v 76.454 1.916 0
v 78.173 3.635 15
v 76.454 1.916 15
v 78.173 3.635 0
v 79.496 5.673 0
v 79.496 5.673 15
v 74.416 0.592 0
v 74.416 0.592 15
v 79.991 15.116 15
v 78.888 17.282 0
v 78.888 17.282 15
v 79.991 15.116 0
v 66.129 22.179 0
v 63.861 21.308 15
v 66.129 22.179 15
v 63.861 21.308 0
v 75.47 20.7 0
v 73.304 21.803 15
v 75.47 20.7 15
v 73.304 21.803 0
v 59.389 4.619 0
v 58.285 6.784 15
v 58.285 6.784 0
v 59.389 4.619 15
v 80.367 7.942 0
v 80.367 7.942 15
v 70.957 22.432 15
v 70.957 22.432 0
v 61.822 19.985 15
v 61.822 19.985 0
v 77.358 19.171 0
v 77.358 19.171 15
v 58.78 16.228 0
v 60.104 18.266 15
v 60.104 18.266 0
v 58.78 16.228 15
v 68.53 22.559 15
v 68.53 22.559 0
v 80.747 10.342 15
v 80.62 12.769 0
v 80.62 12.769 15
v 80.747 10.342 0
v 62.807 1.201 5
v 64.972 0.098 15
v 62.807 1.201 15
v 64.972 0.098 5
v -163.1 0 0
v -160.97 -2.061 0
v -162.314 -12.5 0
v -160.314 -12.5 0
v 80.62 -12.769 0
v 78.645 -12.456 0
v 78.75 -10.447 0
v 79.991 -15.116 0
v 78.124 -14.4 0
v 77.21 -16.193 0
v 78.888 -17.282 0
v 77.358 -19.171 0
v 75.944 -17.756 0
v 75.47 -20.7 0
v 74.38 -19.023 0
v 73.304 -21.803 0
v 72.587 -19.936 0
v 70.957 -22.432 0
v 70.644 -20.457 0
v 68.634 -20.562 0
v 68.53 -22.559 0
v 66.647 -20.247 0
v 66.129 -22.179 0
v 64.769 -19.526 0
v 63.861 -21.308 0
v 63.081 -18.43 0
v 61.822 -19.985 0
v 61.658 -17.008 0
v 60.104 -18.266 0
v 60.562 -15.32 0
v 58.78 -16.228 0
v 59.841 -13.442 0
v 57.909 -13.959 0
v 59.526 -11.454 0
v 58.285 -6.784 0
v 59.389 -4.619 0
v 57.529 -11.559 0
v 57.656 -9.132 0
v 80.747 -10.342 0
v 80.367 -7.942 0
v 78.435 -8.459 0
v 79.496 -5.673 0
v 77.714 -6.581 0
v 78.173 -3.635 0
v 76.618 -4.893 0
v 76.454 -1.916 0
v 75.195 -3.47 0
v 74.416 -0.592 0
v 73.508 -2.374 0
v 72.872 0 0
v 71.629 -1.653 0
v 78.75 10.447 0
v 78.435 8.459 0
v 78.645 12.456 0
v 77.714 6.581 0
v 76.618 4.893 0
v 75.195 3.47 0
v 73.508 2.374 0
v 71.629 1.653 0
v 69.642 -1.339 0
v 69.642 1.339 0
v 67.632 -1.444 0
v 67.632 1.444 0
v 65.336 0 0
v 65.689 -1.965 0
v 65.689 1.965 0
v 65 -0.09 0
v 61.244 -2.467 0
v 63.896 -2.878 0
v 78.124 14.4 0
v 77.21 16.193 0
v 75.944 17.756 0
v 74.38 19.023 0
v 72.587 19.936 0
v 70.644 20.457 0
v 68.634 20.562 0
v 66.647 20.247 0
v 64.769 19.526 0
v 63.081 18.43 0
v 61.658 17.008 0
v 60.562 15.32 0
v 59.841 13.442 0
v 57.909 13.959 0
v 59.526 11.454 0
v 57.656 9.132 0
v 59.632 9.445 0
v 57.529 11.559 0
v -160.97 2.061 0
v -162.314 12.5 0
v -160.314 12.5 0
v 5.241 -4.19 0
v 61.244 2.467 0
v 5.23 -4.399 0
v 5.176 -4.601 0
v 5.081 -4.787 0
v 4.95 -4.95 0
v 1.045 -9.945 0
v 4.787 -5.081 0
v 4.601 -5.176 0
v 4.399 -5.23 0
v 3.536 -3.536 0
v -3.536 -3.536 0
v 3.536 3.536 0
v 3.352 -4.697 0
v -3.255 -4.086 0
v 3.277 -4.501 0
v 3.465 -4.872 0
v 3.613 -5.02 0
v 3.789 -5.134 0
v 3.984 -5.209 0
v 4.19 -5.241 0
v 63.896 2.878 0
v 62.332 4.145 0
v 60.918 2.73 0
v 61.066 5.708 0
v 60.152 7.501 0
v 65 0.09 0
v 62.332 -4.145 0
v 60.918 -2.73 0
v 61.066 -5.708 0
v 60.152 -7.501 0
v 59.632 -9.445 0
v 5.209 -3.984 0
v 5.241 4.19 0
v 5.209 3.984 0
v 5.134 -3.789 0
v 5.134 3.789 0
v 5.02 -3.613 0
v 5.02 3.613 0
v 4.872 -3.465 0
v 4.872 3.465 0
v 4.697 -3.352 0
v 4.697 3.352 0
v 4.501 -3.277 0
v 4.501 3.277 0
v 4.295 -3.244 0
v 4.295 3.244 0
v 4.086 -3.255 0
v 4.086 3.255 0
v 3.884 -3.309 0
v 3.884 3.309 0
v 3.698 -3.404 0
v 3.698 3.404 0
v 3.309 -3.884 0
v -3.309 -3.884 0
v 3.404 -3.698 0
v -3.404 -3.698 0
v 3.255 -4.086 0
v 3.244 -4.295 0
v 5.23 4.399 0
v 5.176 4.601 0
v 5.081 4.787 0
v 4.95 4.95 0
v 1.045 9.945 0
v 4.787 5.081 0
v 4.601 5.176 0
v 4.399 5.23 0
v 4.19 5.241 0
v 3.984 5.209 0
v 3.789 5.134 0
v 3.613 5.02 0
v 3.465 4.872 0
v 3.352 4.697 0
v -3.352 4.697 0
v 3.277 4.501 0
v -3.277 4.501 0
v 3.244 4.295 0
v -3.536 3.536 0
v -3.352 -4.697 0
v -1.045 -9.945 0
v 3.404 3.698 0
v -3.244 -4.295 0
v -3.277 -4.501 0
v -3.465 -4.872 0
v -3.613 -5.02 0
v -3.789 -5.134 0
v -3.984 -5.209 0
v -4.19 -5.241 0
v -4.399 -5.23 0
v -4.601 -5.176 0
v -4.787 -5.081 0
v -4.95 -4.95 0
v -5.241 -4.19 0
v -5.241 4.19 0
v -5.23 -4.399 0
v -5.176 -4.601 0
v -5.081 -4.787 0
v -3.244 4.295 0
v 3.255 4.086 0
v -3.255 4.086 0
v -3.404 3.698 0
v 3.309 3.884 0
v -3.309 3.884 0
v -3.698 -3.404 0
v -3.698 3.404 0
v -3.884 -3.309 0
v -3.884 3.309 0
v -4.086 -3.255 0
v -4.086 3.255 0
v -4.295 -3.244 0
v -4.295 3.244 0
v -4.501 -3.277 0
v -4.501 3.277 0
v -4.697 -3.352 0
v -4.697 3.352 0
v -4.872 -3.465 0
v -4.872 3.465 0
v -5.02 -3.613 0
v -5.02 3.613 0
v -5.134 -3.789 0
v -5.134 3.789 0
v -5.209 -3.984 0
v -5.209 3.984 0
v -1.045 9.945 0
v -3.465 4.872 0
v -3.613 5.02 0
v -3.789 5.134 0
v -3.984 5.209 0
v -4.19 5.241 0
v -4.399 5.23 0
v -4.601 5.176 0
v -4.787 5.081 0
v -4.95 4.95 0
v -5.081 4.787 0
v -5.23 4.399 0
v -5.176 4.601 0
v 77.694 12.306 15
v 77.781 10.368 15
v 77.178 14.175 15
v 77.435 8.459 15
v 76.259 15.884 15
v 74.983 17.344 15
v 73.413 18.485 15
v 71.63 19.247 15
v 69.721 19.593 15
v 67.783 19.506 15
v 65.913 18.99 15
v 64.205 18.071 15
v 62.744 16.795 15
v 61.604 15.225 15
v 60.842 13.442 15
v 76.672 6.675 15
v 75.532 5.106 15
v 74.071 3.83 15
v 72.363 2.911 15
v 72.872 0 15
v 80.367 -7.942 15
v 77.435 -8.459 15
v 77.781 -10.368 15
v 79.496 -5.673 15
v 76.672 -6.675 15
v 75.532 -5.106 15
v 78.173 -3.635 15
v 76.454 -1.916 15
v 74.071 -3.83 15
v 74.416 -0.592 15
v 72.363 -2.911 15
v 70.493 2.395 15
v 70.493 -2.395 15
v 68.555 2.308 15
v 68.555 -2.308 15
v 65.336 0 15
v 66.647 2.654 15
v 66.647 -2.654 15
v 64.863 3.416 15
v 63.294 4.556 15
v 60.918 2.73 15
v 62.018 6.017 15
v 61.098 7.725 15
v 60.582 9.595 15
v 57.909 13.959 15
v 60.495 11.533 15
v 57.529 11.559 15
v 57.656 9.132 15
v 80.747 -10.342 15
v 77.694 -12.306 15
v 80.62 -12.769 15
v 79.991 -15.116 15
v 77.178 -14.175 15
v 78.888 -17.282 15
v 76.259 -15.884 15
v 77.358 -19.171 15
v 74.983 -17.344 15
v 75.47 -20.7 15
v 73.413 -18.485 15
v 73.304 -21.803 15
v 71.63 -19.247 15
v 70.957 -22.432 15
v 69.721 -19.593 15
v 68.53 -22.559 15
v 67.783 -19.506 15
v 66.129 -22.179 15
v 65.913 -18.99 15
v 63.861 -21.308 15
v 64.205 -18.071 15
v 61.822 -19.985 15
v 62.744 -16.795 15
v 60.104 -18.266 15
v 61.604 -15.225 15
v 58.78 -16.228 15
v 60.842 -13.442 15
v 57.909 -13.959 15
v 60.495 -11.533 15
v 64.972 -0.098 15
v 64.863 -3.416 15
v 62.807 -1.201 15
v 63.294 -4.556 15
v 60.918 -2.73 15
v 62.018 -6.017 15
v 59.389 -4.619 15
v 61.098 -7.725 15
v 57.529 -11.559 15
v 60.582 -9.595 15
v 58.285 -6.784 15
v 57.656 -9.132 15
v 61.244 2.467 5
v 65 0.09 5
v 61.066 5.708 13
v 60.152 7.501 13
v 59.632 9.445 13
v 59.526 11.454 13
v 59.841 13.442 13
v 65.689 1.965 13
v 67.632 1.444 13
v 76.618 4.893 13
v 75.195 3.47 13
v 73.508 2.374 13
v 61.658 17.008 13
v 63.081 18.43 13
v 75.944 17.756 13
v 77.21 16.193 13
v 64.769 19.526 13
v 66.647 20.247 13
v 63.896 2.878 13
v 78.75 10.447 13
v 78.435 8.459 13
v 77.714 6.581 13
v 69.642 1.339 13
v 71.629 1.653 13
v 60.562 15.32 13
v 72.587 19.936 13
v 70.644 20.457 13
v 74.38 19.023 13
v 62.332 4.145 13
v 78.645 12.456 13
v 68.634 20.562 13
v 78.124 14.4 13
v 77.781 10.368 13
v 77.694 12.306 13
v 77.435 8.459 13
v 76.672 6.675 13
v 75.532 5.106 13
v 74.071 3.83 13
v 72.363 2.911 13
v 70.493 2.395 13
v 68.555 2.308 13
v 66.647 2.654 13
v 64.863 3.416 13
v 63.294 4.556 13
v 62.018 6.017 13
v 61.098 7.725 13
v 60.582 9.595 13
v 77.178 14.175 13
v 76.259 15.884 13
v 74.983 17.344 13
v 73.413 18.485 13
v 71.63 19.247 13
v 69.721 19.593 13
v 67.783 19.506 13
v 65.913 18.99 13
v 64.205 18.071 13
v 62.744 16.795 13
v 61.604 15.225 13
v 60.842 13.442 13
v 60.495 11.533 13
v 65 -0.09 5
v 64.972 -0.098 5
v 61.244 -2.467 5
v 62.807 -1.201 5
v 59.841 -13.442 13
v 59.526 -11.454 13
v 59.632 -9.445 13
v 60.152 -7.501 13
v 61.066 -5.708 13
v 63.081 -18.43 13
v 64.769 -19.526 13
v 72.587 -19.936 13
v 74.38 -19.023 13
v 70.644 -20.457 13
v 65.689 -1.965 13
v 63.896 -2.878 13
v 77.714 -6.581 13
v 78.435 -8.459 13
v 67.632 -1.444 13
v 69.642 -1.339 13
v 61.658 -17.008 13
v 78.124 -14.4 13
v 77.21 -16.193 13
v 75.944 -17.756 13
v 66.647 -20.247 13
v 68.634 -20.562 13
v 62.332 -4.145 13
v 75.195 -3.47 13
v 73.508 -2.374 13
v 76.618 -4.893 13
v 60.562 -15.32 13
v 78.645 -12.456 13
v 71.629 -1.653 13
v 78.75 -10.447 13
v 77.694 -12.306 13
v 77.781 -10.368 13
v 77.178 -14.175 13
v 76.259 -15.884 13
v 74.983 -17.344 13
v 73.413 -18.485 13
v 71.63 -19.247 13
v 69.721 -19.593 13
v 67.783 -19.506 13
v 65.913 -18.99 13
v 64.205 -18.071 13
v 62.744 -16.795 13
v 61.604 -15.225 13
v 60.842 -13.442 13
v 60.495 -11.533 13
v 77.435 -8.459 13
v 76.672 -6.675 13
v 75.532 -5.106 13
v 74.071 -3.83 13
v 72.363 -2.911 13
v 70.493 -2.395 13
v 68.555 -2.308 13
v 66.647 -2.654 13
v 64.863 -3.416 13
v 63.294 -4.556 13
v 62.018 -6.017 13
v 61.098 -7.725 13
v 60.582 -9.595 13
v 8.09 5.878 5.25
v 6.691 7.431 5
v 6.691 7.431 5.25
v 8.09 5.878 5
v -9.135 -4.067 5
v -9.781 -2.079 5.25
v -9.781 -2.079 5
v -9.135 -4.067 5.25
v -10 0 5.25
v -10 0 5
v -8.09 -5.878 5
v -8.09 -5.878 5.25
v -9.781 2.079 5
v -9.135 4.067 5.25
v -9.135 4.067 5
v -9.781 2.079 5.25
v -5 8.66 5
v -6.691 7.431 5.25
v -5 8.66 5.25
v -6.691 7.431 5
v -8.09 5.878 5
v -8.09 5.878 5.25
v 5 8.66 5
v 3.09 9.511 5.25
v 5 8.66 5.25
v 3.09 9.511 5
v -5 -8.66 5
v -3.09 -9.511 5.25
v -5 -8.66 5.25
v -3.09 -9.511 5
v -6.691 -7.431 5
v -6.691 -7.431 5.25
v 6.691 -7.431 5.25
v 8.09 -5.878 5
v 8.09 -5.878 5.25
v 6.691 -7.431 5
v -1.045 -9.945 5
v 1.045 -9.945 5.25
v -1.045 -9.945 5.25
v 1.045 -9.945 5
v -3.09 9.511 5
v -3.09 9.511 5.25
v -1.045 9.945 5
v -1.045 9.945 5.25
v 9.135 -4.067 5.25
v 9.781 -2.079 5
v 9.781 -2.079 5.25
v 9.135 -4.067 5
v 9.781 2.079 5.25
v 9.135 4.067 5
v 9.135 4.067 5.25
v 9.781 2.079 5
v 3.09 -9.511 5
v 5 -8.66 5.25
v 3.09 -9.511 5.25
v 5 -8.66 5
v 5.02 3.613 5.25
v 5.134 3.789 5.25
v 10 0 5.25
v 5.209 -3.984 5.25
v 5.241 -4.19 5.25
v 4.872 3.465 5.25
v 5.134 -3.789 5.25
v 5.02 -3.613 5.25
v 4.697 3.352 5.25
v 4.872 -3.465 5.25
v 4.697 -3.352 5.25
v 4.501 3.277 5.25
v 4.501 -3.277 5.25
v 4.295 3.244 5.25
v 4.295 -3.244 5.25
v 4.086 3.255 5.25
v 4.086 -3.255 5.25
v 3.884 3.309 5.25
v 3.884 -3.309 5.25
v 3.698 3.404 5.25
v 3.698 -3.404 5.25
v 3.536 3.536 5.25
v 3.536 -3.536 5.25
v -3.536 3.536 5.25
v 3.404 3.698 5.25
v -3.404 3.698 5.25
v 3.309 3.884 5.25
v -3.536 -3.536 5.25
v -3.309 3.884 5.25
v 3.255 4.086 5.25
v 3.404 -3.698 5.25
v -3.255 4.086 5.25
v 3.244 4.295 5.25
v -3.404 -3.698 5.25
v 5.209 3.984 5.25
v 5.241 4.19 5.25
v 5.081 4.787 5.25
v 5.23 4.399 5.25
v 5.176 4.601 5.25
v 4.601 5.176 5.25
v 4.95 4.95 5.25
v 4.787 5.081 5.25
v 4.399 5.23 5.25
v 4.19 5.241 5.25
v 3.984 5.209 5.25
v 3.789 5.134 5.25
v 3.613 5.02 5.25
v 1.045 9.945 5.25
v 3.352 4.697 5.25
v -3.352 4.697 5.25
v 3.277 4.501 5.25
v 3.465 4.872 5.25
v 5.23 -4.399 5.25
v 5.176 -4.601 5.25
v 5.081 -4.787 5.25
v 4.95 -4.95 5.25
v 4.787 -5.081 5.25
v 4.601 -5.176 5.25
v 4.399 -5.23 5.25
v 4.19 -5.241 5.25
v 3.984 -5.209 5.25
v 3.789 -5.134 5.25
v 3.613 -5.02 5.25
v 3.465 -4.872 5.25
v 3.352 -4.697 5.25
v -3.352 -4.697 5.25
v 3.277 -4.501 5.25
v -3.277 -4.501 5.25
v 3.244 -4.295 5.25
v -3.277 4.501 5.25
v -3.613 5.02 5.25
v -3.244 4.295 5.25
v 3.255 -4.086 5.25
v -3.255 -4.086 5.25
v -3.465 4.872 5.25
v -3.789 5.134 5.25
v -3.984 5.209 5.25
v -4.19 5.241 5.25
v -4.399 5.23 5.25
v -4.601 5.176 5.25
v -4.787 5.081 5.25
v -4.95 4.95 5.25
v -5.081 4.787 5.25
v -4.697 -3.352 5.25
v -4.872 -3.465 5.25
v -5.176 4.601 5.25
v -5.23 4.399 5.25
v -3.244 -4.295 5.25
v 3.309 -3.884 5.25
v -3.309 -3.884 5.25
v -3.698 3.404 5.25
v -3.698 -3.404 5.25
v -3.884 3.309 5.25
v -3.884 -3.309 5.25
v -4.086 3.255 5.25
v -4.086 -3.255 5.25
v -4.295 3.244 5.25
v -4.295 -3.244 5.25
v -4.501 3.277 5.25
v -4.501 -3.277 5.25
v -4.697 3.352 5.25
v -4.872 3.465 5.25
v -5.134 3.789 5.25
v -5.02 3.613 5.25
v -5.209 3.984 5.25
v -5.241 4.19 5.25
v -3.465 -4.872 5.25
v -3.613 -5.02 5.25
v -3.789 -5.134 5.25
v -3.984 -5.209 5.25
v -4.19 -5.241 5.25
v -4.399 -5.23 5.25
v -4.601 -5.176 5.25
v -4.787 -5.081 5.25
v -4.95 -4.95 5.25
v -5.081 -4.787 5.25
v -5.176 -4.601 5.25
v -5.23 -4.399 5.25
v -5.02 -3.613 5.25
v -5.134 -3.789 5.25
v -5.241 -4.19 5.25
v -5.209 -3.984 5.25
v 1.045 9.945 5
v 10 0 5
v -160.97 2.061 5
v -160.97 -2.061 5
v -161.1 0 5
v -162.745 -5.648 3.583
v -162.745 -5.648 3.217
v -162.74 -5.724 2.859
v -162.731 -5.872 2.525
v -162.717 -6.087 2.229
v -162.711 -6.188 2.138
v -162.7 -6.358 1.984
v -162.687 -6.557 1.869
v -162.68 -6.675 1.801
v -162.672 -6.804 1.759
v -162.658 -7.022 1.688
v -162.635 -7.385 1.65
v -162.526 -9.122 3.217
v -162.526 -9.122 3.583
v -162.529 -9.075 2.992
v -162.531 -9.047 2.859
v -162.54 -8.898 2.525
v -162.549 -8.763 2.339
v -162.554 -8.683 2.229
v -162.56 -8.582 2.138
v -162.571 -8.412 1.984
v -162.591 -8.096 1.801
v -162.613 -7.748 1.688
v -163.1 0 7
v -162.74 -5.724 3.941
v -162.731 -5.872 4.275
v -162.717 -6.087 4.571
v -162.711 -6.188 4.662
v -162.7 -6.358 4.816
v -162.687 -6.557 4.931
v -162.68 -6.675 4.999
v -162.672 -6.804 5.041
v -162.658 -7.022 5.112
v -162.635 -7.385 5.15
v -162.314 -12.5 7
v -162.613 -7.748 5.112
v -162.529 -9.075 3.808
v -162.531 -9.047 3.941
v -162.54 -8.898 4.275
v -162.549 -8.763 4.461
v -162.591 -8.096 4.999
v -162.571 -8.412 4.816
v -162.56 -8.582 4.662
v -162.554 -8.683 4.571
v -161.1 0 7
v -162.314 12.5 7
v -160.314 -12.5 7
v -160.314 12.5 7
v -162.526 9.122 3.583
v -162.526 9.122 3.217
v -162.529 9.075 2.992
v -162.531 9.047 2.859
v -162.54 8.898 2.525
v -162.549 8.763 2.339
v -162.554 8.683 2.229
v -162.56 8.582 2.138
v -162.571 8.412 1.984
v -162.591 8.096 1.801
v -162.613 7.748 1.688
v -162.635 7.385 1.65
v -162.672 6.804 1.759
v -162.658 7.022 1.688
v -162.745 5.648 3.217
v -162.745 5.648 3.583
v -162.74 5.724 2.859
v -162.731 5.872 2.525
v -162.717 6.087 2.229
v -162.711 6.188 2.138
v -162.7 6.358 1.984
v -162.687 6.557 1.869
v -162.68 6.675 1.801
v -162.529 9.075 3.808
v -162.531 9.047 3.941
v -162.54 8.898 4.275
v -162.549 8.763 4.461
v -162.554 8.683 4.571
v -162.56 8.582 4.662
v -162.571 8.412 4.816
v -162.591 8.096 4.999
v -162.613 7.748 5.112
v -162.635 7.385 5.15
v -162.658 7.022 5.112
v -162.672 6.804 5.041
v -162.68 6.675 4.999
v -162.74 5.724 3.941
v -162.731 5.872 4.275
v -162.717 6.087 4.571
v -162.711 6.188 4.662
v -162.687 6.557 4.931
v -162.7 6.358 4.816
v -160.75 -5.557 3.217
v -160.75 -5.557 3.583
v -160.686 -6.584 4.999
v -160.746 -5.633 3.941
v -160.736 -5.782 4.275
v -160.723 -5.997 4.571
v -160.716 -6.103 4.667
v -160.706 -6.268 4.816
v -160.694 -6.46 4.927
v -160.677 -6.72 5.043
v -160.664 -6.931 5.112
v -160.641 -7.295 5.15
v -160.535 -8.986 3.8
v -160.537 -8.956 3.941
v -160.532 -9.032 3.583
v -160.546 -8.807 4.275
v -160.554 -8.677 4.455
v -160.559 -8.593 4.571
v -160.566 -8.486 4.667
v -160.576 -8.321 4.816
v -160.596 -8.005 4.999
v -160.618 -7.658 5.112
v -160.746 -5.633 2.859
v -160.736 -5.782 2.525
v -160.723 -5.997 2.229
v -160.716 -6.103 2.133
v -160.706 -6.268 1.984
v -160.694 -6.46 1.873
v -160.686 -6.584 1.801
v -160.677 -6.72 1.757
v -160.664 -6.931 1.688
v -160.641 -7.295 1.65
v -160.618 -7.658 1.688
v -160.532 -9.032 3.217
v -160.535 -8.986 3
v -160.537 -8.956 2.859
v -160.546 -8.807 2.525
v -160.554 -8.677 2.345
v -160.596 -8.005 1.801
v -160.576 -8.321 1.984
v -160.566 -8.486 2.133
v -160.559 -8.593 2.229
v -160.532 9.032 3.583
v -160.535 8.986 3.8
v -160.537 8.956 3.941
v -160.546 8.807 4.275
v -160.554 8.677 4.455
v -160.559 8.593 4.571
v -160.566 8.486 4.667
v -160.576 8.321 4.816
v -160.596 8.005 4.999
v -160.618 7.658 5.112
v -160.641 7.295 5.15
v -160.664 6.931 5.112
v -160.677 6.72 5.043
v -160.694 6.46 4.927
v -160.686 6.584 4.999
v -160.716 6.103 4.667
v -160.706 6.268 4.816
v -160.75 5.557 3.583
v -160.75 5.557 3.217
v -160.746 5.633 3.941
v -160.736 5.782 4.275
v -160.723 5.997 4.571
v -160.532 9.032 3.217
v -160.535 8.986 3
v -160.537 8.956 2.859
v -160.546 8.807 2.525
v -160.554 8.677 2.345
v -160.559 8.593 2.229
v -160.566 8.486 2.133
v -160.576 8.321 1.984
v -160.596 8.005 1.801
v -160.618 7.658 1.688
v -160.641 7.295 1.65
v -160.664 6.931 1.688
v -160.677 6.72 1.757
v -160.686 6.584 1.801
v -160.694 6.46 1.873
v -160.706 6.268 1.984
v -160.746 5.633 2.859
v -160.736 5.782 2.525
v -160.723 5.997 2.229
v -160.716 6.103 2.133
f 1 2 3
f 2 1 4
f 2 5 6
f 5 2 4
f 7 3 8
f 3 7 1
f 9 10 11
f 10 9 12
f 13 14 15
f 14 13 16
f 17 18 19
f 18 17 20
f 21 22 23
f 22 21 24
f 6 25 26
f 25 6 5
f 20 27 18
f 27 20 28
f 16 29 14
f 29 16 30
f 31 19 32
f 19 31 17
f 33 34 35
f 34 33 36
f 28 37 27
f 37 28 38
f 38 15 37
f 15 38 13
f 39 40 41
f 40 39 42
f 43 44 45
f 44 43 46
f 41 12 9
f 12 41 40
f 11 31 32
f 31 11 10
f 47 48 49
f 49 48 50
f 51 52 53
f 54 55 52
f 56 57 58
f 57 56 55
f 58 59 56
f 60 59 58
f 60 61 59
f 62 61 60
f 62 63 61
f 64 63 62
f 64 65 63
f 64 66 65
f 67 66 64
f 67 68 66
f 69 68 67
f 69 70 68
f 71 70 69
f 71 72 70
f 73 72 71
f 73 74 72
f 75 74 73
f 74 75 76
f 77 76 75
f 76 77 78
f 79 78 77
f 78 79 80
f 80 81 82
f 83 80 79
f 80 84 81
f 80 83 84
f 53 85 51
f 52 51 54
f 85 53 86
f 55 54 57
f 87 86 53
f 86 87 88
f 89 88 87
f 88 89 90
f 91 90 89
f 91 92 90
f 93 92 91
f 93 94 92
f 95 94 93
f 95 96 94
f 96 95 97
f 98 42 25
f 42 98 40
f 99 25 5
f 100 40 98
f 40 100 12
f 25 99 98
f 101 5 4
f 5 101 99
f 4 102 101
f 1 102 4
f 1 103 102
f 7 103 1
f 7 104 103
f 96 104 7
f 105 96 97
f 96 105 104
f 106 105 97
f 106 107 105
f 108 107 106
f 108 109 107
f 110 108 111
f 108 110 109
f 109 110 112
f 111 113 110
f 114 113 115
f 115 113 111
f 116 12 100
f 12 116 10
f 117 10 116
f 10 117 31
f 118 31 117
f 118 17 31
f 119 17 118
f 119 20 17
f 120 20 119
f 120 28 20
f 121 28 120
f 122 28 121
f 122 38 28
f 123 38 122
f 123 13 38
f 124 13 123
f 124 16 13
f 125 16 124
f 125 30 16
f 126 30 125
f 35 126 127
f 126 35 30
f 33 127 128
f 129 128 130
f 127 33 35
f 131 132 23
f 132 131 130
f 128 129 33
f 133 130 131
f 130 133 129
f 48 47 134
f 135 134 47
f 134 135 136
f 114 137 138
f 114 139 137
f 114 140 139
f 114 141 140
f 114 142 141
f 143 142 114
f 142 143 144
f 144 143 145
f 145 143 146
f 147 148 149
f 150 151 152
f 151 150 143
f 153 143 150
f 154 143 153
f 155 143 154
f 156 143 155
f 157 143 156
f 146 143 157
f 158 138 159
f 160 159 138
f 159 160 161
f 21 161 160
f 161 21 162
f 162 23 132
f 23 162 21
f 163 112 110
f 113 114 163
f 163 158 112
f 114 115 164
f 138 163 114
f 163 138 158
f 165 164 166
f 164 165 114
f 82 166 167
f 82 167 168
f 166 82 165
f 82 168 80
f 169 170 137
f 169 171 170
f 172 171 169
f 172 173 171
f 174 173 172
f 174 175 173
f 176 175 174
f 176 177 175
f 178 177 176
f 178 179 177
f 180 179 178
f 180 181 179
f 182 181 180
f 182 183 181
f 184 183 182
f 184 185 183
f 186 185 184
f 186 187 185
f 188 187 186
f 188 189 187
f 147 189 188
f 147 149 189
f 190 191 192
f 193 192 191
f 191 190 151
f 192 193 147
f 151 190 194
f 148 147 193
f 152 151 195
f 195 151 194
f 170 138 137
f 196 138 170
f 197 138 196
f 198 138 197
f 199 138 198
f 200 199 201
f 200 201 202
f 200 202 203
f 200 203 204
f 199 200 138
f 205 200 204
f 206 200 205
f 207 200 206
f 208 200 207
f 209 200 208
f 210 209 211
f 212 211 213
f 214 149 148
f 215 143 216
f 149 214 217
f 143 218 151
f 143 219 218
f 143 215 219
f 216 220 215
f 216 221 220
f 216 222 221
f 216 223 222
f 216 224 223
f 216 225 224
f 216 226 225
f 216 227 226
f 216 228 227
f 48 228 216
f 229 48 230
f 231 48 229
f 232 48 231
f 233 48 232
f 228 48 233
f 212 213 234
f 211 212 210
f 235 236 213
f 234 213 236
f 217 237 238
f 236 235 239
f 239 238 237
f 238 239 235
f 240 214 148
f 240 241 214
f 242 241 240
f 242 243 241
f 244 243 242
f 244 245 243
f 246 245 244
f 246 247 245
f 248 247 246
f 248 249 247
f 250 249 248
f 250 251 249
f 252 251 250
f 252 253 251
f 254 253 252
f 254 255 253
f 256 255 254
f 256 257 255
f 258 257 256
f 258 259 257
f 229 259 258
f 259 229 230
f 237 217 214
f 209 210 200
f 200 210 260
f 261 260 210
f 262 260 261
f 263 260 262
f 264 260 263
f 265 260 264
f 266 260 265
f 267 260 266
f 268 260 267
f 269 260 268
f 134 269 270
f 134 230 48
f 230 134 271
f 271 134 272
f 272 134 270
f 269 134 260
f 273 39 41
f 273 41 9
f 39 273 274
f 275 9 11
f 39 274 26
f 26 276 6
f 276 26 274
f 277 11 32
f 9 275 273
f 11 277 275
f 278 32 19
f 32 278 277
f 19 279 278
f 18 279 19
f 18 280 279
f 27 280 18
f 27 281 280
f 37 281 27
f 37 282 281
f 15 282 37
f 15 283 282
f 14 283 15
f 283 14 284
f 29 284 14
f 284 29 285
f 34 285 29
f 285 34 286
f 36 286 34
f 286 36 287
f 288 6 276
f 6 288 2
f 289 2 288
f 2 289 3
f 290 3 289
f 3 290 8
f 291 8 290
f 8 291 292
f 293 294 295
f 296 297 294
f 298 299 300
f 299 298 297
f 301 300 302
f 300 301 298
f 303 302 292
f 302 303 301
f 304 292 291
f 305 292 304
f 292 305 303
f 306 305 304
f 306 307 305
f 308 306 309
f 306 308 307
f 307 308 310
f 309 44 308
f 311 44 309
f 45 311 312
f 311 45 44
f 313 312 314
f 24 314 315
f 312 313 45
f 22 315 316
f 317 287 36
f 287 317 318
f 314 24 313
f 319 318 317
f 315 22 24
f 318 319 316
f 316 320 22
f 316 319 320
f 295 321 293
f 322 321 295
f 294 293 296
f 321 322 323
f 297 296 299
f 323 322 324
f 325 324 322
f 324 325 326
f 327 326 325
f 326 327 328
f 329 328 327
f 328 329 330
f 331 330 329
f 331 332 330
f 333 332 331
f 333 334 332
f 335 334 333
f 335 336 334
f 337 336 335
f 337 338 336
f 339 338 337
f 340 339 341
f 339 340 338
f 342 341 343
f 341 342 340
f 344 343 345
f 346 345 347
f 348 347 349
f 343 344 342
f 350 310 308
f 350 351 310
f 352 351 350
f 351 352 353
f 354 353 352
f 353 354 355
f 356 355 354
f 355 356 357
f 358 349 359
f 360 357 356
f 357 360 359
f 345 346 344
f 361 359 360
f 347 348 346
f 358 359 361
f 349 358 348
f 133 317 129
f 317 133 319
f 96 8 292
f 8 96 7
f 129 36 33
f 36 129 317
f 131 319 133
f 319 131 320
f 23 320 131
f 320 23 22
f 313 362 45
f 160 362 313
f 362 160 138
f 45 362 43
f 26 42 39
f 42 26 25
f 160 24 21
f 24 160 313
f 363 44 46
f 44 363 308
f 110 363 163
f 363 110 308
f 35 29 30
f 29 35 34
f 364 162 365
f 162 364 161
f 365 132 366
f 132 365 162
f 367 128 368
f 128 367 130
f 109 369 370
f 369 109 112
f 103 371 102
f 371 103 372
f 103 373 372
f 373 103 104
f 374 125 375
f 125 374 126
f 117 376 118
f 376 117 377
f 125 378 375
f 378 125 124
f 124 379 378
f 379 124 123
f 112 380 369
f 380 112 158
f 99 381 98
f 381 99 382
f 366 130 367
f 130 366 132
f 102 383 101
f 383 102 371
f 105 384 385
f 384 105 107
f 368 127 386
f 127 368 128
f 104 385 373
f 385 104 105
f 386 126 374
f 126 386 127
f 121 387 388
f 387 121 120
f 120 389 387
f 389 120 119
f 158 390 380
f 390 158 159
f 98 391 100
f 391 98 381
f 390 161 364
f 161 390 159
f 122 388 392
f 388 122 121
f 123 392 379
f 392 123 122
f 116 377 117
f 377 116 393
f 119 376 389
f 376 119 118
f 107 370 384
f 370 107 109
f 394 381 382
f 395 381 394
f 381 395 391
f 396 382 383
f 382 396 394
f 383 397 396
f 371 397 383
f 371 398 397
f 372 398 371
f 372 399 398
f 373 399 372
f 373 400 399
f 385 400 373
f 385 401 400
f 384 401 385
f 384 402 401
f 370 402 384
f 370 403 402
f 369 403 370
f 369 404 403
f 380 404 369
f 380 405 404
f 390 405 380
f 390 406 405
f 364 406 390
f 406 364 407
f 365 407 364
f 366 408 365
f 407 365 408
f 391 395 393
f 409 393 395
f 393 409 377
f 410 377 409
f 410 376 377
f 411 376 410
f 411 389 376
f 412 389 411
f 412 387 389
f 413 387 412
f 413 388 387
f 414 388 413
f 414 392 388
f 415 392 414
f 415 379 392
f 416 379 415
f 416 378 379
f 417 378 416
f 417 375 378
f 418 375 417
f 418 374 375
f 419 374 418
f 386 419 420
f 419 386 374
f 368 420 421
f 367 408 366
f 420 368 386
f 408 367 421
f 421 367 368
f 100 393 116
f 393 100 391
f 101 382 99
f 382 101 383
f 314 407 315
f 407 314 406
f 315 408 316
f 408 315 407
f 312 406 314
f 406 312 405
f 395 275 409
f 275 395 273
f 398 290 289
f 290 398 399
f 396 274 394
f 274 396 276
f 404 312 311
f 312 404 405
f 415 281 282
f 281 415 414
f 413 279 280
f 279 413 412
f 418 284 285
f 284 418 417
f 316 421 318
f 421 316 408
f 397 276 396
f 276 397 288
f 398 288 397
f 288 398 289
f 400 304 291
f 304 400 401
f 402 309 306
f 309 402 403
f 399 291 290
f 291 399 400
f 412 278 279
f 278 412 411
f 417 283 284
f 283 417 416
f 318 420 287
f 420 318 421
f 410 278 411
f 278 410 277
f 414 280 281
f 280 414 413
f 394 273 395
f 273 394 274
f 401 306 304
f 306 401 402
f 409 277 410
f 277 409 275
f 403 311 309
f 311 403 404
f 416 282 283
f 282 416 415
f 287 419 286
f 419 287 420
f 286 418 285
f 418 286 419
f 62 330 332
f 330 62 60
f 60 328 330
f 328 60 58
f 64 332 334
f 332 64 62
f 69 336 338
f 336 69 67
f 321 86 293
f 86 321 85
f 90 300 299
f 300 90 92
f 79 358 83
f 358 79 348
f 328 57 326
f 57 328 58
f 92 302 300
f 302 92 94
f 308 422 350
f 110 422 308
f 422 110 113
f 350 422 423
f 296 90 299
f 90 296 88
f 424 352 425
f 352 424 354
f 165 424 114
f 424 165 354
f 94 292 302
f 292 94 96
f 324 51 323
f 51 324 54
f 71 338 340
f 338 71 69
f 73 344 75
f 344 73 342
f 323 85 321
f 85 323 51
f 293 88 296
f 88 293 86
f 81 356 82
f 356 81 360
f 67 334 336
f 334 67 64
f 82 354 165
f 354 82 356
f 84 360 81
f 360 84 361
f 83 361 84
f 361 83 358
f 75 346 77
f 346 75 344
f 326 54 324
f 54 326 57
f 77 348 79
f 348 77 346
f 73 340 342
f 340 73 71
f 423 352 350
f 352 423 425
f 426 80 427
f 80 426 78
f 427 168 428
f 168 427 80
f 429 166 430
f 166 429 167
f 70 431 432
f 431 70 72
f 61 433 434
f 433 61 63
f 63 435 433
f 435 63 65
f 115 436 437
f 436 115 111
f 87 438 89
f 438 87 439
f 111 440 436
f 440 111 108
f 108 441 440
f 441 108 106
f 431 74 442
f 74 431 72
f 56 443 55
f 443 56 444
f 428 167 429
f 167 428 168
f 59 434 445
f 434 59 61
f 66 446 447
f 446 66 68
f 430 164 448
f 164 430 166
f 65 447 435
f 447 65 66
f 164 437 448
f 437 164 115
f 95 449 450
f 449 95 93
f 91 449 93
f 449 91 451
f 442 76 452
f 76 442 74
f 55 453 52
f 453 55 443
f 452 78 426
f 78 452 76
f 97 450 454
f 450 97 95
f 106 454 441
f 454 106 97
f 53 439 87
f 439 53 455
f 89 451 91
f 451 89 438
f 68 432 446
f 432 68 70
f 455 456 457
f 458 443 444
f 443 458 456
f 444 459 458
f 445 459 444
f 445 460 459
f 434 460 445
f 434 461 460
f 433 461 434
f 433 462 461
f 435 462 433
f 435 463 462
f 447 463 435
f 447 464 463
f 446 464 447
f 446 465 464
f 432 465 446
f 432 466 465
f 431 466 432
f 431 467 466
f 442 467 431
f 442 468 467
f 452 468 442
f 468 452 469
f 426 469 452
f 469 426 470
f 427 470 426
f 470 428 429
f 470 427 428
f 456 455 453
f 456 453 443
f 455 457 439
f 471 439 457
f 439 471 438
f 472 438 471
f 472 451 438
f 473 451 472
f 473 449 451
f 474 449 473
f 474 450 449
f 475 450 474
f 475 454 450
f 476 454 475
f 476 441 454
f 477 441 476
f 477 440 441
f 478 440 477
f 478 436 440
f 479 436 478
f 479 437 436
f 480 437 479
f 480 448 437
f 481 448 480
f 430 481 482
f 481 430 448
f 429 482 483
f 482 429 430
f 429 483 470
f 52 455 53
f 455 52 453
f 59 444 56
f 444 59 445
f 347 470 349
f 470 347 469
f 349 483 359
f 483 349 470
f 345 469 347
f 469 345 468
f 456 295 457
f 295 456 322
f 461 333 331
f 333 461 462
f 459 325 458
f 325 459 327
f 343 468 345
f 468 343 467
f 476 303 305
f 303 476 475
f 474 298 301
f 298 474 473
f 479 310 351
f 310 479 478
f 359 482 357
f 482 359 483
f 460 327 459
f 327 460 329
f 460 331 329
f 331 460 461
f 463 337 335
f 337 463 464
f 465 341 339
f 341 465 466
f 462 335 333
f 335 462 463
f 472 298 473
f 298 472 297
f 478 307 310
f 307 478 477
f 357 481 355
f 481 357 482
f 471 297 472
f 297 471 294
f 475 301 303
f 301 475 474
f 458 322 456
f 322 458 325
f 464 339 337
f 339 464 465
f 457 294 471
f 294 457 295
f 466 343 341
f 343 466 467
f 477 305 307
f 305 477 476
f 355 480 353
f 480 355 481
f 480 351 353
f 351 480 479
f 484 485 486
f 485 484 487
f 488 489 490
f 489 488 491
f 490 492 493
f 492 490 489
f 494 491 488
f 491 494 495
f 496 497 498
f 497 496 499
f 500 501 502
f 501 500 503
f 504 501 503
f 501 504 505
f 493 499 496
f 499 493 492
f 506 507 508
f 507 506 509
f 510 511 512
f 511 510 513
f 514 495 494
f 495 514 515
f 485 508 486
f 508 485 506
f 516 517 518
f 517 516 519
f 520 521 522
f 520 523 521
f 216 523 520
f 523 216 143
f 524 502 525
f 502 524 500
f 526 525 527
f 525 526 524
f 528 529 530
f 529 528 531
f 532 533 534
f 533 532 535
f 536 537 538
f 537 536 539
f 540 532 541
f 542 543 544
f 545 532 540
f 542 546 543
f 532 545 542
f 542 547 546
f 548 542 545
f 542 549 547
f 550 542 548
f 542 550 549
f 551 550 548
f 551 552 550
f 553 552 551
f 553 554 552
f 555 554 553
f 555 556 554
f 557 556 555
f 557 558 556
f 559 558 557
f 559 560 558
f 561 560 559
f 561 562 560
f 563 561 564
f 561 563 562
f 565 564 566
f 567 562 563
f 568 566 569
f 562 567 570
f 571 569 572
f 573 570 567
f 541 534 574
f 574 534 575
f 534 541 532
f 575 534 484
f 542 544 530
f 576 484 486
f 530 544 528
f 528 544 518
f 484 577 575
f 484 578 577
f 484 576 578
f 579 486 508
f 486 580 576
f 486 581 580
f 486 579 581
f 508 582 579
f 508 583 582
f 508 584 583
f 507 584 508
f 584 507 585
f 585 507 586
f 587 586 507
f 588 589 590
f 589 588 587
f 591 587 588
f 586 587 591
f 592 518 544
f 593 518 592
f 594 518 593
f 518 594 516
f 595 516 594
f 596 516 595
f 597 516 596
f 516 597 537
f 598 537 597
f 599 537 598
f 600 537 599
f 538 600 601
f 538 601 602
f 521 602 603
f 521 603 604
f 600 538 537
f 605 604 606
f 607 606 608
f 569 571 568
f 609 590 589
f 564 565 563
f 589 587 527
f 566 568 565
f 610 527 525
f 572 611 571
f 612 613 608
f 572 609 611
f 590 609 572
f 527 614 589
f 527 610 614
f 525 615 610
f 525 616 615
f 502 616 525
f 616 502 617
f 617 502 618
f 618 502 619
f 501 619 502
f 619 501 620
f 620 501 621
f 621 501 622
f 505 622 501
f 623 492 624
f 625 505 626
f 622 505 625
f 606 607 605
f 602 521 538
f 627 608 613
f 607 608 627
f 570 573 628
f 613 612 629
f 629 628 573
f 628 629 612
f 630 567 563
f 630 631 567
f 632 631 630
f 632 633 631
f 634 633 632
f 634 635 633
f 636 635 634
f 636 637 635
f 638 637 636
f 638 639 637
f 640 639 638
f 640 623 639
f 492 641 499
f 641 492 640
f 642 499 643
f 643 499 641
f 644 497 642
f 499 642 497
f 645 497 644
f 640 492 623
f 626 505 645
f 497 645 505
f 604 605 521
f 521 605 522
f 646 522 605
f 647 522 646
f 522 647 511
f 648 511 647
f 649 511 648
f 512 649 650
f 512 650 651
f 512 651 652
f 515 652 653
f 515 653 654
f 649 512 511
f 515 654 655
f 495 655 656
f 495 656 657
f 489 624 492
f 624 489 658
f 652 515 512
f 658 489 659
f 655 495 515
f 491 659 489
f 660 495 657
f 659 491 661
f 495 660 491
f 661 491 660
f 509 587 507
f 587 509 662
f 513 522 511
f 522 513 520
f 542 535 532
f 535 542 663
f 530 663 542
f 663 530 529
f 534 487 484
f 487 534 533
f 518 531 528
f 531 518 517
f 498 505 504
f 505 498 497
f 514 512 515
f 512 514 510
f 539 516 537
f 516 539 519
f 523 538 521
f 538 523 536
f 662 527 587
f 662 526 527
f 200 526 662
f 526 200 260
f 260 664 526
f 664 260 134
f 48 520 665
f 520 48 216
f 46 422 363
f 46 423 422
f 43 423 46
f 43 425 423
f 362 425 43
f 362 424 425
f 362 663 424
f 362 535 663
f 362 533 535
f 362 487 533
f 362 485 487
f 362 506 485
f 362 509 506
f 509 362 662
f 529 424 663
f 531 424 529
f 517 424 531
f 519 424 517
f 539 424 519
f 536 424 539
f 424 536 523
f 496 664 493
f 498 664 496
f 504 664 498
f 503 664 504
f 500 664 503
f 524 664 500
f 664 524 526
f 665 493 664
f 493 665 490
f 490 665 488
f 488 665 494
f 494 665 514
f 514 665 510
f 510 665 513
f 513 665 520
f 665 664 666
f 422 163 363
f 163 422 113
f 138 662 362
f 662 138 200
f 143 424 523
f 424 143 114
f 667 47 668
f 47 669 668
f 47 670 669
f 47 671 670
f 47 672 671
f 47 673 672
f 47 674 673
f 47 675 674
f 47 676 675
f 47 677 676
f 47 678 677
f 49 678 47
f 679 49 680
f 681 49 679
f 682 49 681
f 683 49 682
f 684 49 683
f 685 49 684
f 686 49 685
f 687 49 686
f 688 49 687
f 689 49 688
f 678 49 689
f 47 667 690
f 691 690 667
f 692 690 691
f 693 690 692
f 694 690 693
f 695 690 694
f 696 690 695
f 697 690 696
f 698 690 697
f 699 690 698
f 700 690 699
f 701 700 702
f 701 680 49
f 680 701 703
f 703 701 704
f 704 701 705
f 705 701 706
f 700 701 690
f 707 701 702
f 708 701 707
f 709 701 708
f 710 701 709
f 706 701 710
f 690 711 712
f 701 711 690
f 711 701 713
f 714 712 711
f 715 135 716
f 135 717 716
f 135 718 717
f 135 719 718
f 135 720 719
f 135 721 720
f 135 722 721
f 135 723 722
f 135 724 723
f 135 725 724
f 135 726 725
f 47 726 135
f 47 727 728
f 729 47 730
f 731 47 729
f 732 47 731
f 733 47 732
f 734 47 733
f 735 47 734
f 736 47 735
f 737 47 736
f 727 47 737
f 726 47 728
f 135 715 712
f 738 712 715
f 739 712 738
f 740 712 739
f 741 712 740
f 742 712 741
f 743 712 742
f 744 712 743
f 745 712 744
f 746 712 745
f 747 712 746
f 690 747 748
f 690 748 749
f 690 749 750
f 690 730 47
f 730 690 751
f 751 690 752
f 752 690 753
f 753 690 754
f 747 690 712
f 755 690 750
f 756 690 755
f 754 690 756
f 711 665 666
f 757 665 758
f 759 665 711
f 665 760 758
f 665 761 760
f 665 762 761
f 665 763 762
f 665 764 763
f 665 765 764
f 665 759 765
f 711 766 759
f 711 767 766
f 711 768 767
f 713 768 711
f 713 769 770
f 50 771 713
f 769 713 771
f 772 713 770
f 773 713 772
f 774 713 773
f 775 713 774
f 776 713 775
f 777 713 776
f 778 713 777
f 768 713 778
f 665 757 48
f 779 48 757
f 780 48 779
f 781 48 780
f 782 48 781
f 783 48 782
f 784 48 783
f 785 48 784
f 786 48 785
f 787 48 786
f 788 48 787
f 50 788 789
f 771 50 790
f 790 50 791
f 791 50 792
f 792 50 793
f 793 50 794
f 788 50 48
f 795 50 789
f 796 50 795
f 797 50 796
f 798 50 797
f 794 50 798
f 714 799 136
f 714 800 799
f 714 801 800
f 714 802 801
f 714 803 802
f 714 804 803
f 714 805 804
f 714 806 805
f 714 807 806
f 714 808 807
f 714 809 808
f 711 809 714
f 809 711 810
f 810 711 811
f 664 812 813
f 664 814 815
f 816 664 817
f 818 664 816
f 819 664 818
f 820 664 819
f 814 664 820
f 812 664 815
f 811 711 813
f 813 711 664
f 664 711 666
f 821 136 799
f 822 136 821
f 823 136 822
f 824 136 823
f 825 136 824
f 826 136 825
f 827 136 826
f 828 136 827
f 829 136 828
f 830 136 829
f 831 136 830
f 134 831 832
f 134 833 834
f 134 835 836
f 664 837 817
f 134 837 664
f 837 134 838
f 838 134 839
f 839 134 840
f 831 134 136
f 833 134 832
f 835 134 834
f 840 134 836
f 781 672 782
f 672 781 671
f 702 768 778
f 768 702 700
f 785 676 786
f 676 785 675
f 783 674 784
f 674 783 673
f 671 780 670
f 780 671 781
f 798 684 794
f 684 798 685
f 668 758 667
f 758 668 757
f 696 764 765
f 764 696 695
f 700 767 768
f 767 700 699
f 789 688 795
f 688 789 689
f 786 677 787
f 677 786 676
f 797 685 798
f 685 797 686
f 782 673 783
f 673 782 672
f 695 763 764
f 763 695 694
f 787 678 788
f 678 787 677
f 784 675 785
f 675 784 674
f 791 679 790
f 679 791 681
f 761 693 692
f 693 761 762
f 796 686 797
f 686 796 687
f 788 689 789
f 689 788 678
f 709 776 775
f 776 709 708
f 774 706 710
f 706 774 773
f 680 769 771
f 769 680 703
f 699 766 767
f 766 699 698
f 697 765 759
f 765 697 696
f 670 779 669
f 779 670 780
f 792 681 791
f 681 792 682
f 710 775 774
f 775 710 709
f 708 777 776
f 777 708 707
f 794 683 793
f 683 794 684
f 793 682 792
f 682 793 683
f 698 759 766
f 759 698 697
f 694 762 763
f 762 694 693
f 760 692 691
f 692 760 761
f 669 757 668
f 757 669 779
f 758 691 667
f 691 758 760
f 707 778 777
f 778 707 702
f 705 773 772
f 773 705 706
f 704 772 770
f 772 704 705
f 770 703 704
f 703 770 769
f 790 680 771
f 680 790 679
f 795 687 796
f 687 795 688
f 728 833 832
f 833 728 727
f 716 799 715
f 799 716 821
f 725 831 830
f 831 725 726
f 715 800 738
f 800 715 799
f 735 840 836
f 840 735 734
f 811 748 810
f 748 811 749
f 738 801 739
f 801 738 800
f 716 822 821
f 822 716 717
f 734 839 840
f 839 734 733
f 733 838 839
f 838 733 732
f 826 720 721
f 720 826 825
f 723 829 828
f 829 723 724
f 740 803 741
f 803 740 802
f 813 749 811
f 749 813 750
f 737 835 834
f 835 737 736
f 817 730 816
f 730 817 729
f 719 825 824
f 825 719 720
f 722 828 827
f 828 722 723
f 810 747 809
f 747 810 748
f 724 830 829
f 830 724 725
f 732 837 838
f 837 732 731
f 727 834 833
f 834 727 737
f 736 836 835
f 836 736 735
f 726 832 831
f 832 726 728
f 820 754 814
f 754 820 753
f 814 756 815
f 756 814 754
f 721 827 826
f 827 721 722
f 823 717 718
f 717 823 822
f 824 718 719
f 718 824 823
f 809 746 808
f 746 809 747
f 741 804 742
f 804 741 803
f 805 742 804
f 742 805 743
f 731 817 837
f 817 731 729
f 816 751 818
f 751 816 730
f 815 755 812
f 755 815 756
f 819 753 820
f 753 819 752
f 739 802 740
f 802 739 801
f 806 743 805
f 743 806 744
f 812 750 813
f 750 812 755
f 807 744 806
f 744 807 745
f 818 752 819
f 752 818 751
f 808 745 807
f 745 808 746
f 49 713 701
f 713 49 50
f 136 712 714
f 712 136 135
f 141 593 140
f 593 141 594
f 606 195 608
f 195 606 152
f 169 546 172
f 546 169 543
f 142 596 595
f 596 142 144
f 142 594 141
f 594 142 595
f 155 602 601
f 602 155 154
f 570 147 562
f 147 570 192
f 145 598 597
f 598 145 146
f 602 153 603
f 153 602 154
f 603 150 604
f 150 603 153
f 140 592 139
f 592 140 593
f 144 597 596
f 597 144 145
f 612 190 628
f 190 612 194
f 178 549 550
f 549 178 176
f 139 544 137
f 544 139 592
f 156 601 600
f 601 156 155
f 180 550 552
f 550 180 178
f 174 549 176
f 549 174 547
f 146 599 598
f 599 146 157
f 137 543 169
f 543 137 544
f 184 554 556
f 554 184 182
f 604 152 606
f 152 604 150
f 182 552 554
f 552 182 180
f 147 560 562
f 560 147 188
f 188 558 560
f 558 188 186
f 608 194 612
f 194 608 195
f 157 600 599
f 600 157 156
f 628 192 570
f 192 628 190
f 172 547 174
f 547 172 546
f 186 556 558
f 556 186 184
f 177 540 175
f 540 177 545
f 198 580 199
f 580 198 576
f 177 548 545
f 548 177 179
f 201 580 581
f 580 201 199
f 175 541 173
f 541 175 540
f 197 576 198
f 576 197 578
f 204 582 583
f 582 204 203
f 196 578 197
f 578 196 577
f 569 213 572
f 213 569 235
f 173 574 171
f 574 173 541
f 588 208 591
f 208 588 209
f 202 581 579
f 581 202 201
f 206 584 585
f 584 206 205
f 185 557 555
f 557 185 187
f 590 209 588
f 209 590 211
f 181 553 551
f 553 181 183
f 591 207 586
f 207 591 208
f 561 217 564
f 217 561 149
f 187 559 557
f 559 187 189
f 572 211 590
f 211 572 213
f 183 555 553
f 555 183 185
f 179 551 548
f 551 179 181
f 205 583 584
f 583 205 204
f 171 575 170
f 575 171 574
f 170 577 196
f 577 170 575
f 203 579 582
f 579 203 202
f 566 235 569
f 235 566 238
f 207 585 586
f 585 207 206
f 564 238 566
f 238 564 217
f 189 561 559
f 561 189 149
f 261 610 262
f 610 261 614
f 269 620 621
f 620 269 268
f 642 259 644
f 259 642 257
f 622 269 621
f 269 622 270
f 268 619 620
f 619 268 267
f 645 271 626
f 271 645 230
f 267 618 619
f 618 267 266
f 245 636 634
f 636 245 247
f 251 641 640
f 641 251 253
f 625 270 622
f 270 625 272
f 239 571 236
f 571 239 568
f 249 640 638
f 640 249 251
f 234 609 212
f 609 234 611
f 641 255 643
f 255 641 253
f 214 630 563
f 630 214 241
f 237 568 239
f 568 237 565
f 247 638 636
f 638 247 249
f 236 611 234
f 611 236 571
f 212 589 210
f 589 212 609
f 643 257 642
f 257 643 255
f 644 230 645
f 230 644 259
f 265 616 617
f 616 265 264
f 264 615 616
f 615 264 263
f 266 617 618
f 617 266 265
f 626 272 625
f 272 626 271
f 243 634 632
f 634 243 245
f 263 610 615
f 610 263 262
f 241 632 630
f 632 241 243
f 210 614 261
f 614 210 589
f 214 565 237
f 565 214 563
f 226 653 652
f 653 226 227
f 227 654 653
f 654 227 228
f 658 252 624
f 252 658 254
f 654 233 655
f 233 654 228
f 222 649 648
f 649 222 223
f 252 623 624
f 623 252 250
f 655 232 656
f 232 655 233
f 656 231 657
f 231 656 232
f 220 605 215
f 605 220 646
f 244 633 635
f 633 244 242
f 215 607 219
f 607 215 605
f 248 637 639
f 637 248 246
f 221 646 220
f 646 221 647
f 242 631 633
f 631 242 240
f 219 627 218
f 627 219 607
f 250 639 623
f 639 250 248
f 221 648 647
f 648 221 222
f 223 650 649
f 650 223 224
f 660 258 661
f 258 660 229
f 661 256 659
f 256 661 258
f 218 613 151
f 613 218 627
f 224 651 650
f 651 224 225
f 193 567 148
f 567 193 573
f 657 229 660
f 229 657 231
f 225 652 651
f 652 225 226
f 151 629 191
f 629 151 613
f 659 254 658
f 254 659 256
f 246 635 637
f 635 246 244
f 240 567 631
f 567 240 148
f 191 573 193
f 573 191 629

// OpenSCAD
// file: dynamixel_motor.scad
/*
 * Dynamixel Motor Model
 * Parametric OpenSCAD model for Dynamixel servo motors
 * Default dimensions based on XL330-M288-T
 * 
 * Author: Generated for Orbigator project
 * Date: 2025-12-13
 */

// Main parameters for XL330-M288-T
// All dimensions in mm
motor_width = 20;           // Width of motor body
motor_depth = 34;           // Depth of motor body
motor_height = 23;        // Height of motor body (excluding horn)
shaft_offset_from_top = 9.5; // Distance from top of motor to shaft center

// Horn parameters
horn_diameter = 16;       // Diameter of output horn
horn_height = 2.8;          // Height of horn above body
horn_screw_diameter = 2;    // Center screw hole
horn_mount_holes = 4;       // Number of mounting holes in horn
horn_mount_radius = 6;      // Radius of mounting holes from center
horn_mount_hole_dia = 2;    // Diameter of mounting holes
horn_mount_hole_xtra = 0.4;  // extra diameter for mounting screws
horn_mount_head_dia = 5;    // Diameter of mounting holes

// Side mounting bracket parameters
bracket_width = 24;         // Width of mounting bracket
bracket_height = 5;         // Height of mounting bracket
bracket_thickness = 3;      // Thickness of bracket
bracket_hole_spacing_x = 16;  // Distance between mounting holes
bracket_hole_spacing_y = 30;  // Distance between mounting holes
bracket_hole_diameter = 2; // Mounting hole diameter

// Cable parameters
cable_width = 4;            // Width of cable connector
cable_height = 3;           // Height of cable connector
cable_depth = 6;            // Depth of cable connector

// Drive shaft adapter parameters
adapter_base_height = 3.2;   // Height of base that sits on horn
taper_height = 3;            // Height of tapered transition
shaft_diameter = 5;          // Diameter of D-shaft
shaft_height = 18;           // Total height of shaft (7 + 11)
d_flat_width = 0.5;          // Width of flat on D-shaft
// Safe screw depth: goes through adapter base + into horn, but NOT through horn to motor body
// Leave 0.5mm safety margin to prevent bottoming out on motor
screw_depth = adapter_base_height + horn_height - 0.5;

// Rendering quality
$fn = 50;

// Main module
module dynamixel_xl330(show_horn=true, show_bracket=true, show_cable=true) {
  translate([0, -(motor_depth/2-shaft_offset_from_top), -motor_height-horn_height+horn_height])
    {
      color("DarkSlateGray") {
        // Main motor body
        difference() {
	  // Main rectangular body
	  translate([0, 0, motor_height/2])
	    cube([motor_width, motor_depth, motor_height], center=true);
            
	  // Mounting bracket cutouts (if brackets are shown separately)
	  if (!show_bracket) {
	    // Top bracket cutout
	    translate([0, 0, motor_height - bracket_thickness/2])
	      cube([motor_width + 0.1, bracket_width + 0.1, bracket_thickness + 0.1], center=true);
	  }
            
	  // Mounting holes through the body (4 holes at corners)
	  // Based on technical drawing - holes are on 18mm spacing
	  for (x = [-1, 1]) {
	    for (y = [-1, 1]) {
	      translate([x * bracket_hole_spacing_x / 2, y * bracket_hole_spacing_y / 2, motor_height/2])
		cylinder(h=motor_height*2, d=bracket_hole_diameter, center=true);
	    }
	  }
        }
      }
    
      // Output horn (positioned at shaft_z)
      if (show_horn) {
        color("White", 0.9) {
	  translate([0, motor_depth/2-shaft_offset_from_top, motor_height]) {
	    difference() {
	      // Horn cylinder
	      cylinder(h=horn_height, d=horn_diameter);
                    
	      // Center screw hole
	      translate([0, 0, -0.1])
		cylinder(h=horn_height + 0.2, d=horn_screw_diameter);
                    
	      // Mounting holes around horn
	      for (i = [0:horn_mount_holes-1]) {
		rotate([0, 0, i * 360/horn_mount_holes])
		  translate([horn_mount_radius, 0, -0.1])
		  cylinder(h=horn_height + 100, d=horn_mount_hole_dia,center=true);
	      }
	    }
                
	    // Horn spline (simplified as cross pattern)
	    for (i = [0:3]) {
	      rotate([0, 0, i * 90])
		translate([0, 0, horn_height/2])
		cube([horn_diameter * 0.6, 1.5, horn_height], center=true);
	    }
	  }
        }
      }
    }
}
module dynamixel_mounting_screws(){
  translate([0, -(motor_depth/2-shaft_offset_from_top), -motor_height-horn_height+horn_height])
  for (x = [-1, 1]) {
    for (y = [-1, 1]) {
      translate([x * bracket_hole_spacing_x / 2, y * bracket_hole_spacing_y / 2, motor_height/2])
	cylinder(h=motor_height*2, d=bracket_hole_diameter, center=true);
      translate([x * bracket_hole_spacing_x / 2, y * bracket_hole_spacing_y / 2, motor_height*2+1])
	cylinder(h=motor_height*2, d=bracket_hole_diameter*3, center=true);
    }
  }
}

// Mounting bracket module (can be used separately for assemblies)
module dynamixel_bracket(thickness=3) {
    difference() {
        cube([motor_width, bracket_width, thickness], center=true);
        
        // Mounting holes
        for (y = [-1, 1]) {
            translate([0, y * bracket_hole_spacing/2, 0])
                cylinder(h=thickness + 0.2, d=bracket_hole_diameter, center=true);
        }
    }
}

// Horn module (can be used separately)
module dynamixel_horn() {
    difference() {
        // Horn cylinder
        cylinder(h=horn_height, d=horn_diameter);
        
        // Center screw hole
        translate([0, 0, -0.1])
            cylinder(h=horn_height + 0.2, d=horn_screw_diameter);
        
        // Mounting holes around horn
        for (i = [0:horn_mount_holes-1]) {
            rotate([0, 0, i * 360/horn_mount_holes])
                translate([horn_mount_radius, 0, -0.1])
                    cylinder(h=horn_height + 0.2, d=horn_mount_hole_dia);
        }
    }
    
    // Horn spline
    for (i = [0:3]) {
        rotate([0, 0, i * 90])
            translate([0, 0, horn_height/2])
                cube([horn_diameter * 0.6, 1.5, horn_height], center=true);
    }
}

// Drive shaft adapter module
// Mounts to DYNAMIXEL horn and provides D-shaft output
module dynamixel_drive_shaft(){
  translate([0, 0, horn_height]){
    difference(){
      union(){
        // Base adapter that sits on horn
	cylinder(d=horn_diameter, h=adapter_base_height);
        // Tapered transition from horn to shaft
	translate([0, 0, adapter_base_height])
          cylinder(d2=shaft_diameter, d1=horn_diameter, h=taper_height);
      }
      // Mounting holes for self-tapping screws
      for (i = [0:horn_mount_holes-1]) {
        // Through holes for screw shafts
	rotate([0, 0, i * 360/horn_mount_holes])
	  translate([horn_mount_radius, 0, -1])
	  cylinder(h=screw_depth, d=horn_mount_hole_dia+horn_mount_hole_xtra);
        // Countersink for screw heads
	rotate([0, 0, i * 360/horn_mount_holes])
	  translate([horn_mount_radius, 0, adapter_base_height])
	  cylinder(h=screw_depth, d=horn_mount_head_dia);
      }
    }
    // D-shaft output (rotated 180° for orientation)
    rotate([0, 0, 180])
      difference(){
        // Main shaft cylinder
        cylinder(d=shaft_diameter, h=shaft_height);
        // Cut flat to create D-profile
        translate([-shaft_diameter, shaft_diameter/2 - d_flat_width, 0])
          cube([shaft_diameter*2, shaft_diameter, shaft_height + screw_depth]);
    }
  }
}
translate([0, 0, 0])color("grey")dynamixel_drive_shaft();

// Example usage: Single motor
//dynamixel_xl330(show_horn=true, show_bracket=true, show_cable=true);
//dynamixel_mounting_screws();
// Example: Daisy chain configuration (uncomment to see)
/*
for (i = [0:1]) {
    translate([0, i * (motor_depth + 5), 0])
        dynamixel_xl330();
}
*/

// Example: Motor without horn (uncomment to see)
/*
translate([40, 0, 0])
    dynamixel_xl330(show_horn=false);
*/
// main file
/*
 * AoV Arm for Orbigator
 * Mounts to DYNAMIXEL motor horn and provides pointer arm for globe
 * 
 * Author: Orbigator project
 * Date: 2025-12-18
 */

// Import motor constants from dynamixel_motor.scad
use <dynamixel_motor.scad>

// Unit conversions
inch = 25.4;

// Globe parameters
globe_d = 13 * inch;
globe_r = globe_d/2;
globe_thickness = 2;
globe_ir = globe_r - globe_thickness;

// Arm parameters
arm_height = 5;
arm_base_diameter = 20;  // Slightly larger than horn_diameter (16mm) for clearance

// Magnet/weight compartment parameters
magnet_support_offset = 8;  // Offset from globe_ir
penny_radius = 70;
penny_angle = 9;  // Angle for dual penny compartments

// Penny dimensions (for counterweight)
um3_tol = 0.2;
penny_d = 0.75 * inch + um3_tol;
penny_t = 0.06 * inch;
penny_compartment_height = 15;

// Motor horn mounting parameters (from dynamixel_motor.scad)
// horn_diameter = 16
// horn_mount_holes = 4
// horn_mount_radius = 6
// horn_mount_hole_dia = 2

module penny_compartment(offset_distance, angle=0, height) {
  rotate([0, 0, 180 + angle])
    difference() {
      hull() {
        translate([-offset_distance, 0, 0])
          cylinder(d=penny_d + 4, h=height);
      }
      // Penny cavity
      translate([0, 0, -2])
        translate([-offset_distance, 0, 0])
          cylinder(d=penny_d, h=height);
      // Inner clearance
      translate([0, 0, -2])
        translate([-offset_distance, 0, 0])
          cylinder(d=penny_d * 0.9, h=height * 2);
    }
}

module aov_arm() {
  rotate([0, 0, 180]) {
    difference() {
      union() {
        // Base mounting flange (mounts to motor horn)
        cylinder(d=arm_base_diameter, h=arm_height + 0.25); // Extra height for screw clearance
        
        // Arm extending to globe edge
        hull() {
          cylinder(d=arm_base_diameter, h=arm_height);
          translate([globe_ir - 1, -2, 0])
            cube([0.1, 4, arm_height]);
        }
        
        // Arm extending to counterweight
        hull() {
          cylinder(d=arm_base_diameter, h=arm_height);
          translate([-penny_radius + 5, -2, 0])
            cube([0.1, 4, arm_height]);
        }
        
        // Counterweight compartments
        rotate([0, 0, 180])
          penny_compartment(penny_radius, penny_angle, penny_compartment_height);
        rotate([0, 0, 180])
          penny_compartment(penny_radius, -penny_angle, penny_compartment_height);
      }
      
      // Mounting holes for motor horn (4 holes at 45° intervals)
      // These align with horn_mount_holes from dynamixel_motor.scad
      for(i = [1:4]) {
        rotate([0, 0, 45 + 90 * i])
          translate([6, 0, -1])  // 6mm = horn_mount_radius
            #cylinder(d=2, h=30, $fn=30);  // Slightly larger than horn_mount_hole_dia (2mm)
      }
    }
    
    // Globe engagement feature (partial ring that grips globe)
    intersection() {
      difference() {
        // Outer ring
        cylinder(r=globe_ir, h=7, $fn=50);
        
        // Inner clearance
        translate([0, 0, -1])
          cylinder(r=globe_ir - 2, h=arm_height + 12, $fn=50);
        
        // Horizontal clearance slot
        rotate([90, 0, 0])
          translate([0, 8, 0])
            cylinder(d=5, h=30, $fn=30);
        
        // Angled mounting holes for globe attachment
        rotate([0, 0, 180 + 2.6])
          translate([-200, 0, 3.4])
            rotate([0, 90, 0])
              cylinder(d=3.5, h=100, $fn=30);
        
        rotate([0, 0, 180 - 2.6])
          translate([-200, 0, 3.4])
            rotate([0, 90, 0])
              cylinder(d=3.5, h=100, $fn=30);
      }
      
      // Trim to half-ring
      translate([100, 0, 0])
        cube([200, 25, 100], center=true);
    }
  }
}

// Render the arm
color("yellow")aov_arm();
